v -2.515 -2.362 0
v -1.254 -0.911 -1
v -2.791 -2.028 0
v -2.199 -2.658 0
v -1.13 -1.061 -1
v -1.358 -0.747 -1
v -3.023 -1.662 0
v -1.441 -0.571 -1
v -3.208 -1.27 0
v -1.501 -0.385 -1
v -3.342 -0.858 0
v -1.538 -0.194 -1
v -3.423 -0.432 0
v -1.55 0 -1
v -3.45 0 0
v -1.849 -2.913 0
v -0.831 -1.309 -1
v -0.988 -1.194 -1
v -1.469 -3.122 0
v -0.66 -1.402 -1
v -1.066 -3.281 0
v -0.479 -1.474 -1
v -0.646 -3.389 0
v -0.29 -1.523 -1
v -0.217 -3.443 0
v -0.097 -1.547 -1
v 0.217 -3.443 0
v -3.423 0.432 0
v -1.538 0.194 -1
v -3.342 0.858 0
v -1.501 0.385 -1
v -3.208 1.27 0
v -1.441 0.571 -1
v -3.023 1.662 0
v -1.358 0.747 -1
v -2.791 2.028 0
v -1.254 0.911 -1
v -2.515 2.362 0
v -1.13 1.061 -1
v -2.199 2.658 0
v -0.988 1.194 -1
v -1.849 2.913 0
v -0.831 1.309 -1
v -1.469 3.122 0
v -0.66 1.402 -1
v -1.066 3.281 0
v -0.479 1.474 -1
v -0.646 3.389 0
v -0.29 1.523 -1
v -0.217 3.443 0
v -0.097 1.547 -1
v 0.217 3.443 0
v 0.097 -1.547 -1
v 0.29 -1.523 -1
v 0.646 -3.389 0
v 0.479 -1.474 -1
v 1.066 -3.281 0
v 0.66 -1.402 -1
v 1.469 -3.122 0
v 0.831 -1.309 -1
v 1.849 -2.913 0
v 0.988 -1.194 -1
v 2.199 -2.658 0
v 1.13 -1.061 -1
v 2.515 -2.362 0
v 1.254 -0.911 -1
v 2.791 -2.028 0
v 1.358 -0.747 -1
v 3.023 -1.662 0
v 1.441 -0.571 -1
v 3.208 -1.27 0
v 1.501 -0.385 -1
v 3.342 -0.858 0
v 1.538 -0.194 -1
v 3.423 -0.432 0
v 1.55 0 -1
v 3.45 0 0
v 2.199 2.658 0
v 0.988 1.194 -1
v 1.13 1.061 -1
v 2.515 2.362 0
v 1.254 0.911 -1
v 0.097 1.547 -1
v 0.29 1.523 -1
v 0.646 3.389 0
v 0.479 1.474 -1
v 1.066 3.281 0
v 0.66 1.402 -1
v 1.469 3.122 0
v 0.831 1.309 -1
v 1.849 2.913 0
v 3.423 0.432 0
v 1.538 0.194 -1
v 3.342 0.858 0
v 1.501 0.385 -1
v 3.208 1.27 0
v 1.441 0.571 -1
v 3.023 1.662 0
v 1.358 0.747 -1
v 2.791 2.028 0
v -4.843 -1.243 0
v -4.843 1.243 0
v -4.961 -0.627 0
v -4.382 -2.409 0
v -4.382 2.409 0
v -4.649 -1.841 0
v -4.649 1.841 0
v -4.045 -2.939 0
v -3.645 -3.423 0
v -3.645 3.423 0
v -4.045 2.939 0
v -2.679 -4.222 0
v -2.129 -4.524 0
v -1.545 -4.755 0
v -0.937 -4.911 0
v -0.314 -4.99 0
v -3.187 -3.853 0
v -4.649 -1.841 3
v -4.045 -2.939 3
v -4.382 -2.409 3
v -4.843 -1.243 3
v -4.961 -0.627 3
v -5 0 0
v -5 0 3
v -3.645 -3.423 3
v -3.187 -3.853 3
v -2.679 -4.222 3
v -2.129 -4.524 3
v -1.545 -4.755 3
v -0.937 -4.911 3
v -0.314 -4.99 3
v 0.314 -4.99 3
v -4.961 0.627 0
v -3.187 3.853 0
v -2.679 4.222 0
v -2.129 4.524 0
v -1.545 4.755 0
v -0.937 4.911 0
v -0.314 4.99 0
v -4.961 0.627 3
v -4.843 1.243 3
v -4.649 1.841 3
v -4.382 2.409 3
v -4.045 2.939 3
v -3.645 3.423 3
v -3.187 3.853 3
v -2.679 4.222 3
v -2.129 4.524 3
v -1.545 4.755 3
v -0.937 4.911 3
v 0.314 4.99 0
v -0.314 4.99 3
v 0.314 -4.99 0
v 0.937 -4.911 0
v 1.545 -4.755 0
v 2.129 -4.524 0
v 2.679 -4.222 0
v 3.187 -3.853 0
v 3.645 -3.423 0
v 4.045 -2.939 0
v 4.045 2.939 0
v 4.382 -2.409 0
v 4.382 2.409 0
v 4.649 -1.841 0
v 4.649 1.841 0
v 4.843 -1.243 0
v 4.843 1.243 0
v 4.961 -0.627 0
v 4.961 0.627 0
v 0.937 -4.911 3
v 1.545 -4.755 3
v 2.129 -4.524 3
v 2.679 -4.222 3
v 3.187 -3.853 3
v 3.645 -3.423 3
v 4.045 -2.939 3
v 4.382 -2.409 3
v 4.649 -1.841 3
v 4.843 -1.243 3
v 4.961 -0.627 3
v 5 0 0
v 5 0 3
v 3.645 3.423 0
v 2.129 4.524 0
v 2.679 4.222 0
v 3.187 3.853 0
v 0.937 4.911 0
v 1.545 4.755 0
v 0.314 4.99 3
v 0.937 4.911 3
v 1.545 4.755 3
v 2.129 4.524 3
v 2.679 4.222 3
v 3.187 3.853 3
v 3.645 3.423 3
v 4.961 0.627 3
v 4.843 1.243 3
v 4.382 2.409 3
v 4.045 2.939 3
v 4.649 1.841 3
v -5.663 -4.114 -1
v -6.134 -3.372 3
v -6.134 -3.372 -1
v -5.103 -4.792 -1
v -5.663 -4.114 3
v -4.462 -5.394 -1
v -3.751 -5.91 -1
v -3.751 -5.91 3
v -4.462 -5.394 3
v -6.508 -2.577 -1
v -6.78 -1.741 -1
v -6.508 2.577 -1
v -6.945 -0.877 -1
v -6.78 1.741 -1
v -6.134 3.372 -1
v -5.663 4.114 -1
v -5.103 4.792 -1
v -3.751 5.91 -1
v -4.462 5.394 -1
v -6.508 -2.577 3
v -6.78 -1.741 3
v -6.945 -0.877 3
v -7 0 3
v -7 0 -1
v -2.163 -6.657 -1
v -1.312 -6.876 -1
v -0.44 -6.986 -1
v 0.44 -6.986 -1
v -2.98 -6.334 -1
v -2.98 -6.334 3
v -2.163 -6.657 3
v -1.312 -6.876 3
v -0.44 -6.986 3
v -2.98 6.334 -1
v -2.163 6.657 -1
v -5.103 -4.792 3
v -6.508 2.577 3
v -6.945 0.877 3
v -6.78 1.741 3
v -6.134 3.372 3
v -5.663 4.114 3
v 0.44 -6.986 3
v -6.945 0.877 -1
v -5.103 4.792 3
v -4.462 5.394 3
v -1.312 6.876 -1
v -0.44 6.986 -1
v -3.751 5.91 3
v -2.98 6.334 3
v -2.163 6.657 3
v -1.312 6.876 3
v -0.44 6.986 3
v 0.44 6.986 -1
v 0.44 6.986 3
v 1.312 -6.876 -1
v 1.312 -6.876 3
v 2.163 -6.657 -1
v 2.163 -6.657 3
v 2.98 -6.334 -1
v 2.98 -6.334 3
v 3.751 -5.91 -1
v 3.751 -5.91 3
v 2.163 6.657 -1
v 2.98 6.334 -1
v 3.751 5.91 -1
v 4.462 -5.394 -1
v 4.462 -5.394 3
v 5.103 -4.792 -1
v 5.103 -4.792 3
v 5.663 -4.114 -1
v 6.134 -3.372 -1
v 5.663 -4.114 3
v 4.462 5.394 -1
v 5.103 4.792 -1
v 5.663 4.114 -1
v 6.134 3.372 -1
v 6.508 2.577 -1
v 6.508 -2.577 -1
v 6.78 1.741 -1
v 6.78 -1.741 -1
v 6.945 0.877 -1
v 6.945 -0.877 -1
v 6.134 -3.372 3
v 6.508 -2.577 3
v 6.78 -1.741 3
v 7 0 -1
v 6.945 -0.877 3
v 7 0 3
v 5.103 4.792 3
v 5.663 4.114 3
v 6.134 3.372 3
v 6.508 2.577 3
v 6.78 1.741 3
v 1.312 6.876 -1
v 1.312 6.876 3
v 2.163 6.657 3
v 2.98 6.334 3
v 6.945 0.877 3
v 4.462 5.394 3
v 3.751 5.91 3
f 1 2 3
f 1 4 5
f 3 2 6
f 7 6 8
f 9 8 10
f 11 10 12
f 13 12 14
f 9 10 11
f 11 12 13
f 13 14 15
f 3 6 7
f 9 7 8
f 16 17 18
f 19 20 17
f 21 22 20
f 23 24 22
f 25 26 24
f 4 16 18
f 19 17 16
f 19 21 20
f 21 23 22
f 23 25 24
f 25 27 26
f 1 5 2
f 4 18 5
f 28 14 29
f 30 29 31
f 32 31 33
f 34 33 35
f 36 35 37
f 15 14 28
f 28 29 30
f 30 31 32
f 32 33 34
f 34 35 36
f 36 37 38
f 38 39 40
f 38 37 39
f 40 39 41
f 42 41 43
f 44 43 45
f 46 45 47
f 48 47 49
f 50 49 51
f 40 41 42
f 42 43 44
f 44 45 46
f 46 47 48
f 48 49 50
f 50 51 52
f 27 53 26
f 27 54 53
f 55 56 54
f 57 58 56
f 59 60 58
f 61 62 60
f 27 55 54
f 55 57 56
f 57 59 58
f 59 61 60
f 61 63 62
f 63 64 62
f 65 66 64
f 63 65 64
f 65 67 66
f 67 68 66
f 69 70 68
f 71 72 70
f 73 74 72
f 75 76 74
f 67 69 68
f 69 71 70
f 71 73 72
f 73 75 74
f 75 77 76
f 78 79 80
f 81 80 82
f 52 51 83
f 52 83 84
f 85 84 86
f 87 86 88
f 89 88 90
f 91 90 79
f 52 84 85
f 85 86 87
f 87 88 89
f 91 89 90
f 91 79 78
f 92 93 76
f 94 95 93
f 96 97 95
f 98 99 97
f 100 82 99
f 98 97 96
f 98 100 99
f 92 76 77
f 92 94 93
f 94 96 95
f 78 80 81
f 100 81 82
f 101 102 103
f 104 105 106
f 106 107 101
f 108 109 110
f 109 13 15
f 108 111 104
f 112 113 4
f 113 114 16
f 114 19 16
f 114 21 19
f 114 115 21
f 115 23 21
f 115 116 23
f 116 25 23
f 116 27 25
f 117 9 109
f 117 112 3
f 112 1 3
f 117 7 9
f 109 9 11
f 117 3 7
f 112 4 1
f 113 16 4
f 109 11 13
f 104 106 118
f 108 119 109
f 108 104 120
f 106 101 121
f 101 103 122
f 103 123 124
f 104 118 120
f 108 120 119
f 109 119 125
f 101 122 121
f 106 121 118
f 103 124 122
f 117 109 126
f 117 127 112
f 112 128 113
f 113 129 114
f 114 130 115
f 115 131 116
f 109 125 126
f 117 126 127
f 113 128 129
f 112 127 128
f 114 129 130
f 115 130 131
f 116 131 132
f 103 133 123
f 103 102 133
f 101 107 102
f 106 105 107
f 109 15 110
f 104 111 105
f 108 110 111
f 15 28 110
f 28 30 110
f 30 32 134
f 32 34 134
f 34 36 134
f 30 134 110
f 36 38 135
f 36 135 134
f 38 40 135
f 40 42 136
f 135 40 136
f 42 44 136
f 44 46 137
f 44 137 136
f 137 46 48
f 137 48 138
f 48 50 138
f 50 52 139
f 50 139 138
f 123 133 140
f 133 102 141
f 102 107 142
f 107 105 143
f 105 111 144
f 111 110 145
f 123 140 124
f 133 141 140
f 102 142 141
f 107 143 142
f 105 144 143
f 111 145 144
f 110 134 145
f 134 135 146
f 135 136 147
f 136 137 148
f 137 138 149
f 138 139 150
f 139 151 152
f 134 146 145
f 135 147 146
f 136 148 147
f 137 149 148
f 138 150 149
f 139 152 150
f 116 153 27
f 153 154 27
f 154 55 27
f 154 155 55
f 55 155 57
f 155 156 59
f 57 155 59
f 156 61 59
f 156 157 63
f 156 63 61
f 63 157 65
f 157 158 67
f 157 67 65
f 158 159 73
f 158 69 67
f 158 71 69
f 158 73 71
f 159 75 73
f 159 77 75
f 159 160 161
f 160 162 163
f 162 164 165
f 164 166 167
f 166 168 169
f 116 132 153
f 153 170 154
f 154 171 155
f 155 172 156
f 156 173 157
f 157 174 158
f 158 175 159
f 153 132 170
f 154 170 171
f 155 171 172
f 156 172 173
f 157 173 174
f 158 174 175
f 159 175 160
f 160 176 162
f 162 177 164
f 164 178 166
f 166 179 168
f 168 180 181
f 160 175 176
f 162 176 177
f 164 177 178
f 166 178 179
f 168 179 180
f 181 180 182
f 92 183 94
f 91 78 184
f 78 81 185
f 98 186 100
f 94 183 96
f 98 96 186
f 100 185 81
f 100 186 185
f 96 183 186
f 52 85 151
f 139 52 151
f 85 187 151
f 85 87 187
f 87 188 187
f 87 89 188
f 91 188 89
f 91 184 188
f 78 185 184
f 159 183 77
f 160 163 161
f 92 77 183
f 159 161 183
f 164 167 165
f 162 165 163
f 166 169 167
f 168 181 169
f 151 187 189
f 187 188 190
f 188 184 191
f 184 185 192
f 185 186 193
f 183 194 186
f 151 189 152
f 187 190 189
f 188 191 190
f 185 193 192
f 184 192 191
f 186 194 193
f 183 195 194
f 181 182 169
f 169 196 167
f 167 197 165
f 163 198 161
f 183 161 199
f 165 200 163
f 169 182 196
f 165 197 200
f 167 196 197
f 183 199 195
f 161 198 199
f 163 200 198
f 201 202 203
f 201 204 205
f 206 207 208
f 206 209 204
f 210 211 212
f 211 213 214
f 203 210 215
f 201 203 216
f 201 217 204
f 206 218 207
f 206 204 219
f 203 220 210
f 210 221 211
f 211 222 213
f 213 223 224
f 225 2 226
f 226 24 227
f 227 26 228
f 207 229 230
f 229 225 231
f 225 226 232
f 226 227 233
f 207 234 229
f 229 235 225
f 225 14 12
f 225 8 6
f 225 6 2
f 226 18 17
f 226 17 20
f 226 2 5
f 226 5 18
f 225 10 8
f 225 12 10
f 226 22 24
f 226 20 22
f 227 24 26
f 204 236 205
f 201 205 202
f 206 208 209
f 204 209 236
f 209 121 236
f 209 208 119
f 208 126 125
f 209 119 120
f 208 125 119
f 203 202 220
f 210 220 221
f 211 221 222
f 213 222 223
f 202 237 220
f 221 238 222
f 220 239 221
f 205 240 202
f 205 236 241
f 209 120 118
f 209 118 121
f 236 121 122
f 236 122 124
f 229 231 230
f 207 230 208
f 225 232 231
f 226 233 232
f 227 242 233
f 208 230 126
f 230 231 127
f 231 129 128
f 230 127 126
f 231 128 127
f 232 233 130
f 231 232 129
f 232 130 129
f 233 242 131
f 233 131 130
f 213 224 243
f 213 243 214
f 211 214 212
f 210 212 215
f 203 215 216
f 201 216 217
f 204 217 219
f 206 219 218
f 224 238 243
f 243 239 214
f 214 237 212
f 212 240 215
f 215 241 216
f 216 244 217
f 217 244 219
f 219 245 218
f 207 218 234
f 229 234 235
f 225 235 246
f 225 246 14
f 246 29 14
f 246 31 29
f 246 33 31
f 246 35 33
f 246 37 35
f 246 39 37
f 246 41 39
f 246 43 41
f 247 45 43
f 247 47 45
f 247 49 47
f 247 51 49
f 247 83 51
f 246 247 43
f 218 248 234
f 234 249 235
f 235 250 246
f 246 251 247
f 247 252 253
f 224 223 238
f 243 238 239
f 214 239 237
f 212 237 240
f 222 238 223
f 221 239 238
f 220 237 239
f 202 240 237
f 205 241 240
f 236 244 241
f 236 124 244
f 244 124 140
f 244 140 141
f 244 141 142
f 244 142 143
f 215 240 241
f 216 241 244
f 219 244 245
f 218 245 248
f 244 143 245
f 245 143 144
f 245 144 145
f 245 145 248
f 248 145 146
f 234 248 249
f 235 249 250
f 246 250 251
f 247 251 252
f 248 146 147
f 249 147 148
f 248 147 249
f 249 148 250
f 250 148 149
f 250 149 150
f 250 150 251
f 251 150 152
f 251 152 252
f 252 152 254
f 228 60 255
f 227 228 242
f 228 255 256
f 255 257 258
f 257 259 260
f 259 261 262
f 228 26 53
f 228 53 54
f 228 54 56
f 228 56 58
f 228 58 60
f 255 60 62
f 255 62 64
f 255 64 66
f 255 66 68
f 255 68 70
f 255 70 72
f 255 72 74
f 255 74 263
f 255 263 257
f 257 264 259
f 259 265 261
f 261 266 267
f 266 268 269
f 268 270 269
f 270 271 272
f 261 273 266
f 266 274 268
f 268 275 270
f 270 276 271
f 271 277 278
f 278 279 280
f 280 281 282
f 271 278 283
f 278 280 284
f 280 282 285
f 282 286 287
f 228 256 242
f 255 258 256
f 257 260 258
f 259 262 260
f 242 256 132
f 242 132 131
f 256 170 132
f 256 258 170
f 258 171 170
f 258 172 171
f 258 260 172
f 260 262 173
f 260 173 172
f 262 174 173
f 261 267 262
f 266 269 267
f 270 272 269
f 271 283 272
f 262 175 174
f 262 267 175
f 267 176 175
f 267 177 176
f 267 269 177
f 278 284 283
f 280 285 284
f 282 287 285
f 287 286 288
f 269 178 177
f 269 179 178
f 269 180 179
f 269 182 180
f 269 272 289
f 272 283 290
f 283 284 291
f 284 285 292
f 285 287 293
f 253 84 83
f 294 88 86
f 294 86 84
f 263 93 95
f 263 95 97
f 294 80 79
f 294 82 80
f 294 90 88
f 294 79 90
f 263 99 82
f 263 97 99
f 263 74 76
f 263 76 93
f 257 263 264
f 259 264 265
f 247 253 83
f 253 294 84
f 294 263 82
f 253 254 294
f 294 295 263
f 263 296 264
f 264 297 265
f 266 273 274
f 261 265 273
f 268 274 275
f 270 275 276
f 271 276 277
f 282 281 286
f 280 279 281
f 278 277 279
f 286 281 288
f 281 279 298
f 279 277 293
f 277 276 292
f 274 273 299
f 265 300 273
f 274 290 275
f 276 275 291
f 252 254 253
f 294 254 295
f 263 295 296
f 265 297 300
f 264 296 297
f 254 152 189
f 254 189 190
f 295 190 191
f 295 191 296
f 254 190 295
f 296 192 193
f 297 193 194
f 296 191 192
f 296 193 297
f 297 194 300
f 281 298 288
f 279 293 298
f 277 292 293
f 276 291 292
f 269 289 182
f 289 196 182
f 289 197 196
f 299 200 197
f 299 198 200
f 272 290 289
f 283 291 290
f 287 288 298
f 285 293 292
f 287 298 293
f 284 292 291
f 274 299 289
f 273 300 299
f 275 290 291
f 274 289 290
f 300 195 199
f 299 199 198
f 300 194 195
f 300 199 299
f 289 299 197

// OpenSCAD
$fn = 50;


difference() {
	union() {
		translate(v = [0, 0, -1.0000000000]) {
			cylinder(h = 4.0000000000, r = 7.0000000000);
		}
	}
	union() {
		translate(v = [0, 0, 0]) {
			rotate(a = [0, 0, 0]) {
				difference() {
					union() {
						translate(v = [0, 0, -4.0000000000]) {
							cylinder(h = 4.0000000000, r = 1.2500000000);
						}
						translate(v = [0, 0, -1.0000000000]) {
							cylinder(h = 1.0000000000, r1 = 1.5500000000, r2 = 3.4500000000);
						}
						translate(v = [0, 0, -4.0000000000]) {
							cylinder(h = 4.0000000000, r = 1.5500000000);
						}
						translate(v = [0, 0, -4.0000000000]) {
							cylinder(h = 4.0000000000, r = 1.2500000000);
						}
					}
					union();
				}
			}
		}
		#cylinder(h = 3, r = 5.0000000000);
	}
}
